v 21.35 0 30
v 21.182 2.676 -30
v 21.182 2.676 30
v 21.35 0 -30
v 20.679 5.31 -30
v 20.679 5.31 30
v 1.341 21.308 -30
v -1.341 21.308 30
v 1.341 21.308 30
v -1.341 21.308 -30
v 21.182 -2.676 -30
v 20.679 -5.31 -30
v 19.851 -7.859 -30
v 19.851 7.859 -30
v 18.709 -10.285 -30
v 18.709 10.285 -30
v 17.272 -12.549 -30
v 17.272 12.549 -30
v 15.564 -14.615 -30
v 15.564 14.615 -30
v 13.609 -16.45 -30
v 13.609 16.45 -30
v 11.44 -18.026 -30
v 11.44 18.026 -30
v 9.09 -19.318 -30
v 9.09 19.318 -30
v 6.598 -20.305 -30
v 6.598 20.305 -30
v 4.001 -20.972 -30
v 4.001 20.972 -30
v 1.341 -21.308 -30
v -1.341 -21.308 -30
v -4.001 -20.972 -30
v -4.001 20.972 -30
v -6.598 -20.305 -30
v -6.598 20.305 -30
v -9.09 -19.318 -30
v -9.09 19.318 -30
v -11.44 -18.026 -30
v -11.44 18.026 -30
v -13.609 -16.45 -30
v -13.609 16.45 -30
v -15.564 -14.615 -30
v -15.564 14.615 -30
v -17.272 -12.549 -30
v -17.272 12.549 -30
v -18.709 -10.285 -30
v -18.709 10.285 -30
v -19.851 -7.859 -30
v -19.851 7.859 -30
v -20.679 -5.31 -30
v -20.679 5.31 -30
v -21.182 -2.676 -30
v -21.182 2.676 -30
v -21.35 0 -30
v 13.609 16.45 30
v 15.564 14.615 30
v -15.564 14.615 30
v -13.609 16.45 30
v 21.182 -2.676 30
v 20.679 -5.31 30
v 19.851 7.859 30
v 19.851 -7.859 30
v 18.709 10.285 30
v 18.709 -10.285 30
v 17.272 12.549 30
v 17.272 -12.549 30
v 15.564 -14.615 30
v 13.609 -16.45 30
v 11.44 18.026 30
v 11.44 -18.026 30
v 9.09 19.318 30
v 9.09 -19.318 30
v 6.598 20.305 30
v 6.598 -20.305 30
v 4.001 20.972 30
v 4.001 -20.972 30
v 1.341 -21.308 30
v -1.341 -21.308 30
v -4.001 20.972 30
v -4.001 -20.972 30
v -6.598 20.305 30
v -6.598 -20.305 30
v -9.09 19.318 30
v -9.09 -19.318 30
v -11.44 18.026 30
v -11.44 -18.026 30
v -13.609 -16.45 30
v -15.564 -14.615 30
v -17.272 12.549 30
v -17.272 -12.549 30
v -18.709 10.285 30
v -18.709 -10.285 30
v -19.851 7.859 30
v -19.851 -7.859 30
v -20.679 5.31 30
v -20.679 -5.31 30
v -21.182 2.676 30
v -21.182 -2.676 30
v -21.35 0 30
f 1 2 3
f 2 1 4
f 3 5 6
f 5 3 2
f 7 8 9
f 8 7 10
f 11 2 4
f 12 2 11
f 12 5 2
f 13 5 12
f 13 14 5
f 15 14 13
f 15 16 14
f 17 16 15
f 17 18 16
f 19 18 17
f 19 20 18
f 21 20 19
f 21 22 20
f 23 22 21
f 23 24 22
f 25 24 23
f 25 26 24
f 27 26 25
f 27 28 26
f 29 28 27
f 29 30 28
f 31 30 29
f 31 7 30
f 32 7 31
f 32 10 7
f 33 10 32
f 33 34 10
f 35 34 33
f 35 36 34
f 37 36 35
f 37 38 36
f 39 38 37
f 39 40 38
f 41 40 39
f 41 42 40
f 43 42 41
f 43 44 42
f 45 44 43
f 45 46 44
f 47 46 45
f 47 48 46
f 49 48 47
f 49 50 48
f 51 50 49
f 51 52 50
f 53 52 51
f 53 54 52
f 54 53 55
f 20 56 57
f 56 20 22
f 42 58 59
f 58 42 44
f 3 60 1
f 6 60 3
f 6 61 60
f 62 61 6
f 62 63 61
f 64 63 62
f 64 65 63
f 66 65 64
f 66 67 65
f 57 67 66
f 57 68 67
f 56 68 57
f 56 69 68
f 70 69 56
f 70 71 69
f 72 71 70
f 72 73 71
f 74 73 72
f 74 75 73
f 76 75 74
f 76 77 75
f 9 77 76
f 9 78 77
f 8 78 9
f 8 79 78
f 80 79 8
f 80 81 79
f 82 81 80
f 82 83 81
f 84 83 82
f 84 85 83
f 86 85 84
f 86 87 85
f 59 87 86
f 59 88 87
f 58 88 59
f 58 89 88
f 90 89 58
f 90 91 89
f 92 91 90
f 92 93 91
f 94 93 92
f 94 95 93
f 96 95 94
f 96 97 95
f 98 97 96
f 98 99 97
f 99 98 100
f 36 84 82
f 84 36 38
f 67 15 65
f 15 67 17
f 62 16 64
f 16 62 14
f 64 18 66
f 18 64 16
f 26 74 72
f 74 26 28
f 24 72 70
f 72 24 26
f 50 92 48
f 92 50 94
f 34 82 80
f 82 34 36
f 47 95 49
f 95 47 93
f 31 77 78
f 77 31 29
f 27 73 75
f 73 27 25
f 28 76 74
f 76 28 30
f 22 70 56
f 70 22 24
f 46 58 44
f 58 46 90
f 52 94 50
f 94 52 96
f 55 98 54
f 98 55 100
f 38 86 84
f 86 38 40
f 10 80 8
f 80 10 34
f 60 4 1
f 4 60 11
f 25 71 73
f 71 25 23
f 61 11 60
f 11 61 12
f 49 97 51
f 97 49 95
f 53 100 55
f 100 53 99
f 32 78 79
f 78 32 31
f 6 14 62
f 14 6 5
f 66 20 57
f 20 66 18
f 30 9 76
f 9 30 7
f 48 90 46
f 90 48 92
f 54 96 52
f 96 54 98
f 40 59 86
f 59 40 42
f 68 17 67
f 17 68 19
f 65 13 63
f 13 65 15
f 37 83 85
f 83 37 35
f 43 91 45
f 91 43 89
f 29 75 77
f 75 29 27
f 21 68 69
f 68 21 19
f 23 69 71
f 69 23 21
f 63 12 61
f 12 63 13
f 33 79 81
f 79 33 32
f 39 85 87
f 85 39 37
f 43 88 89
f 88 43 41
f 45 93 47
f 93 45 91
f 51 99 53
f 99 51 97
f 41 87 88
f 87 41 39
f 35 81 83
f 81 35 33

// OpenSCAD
$fn = 50;


difference() {
	union() {
		translate(v = [0, 0, -30.0000000000]) {
			cylinder(h = 60, r = 21.3500000000);
		}
	}
	union() {
		translate(v = [0, 0, -100.0000000000]) {
			cylinder(h = 200, r = 0);
		}
	}
}
